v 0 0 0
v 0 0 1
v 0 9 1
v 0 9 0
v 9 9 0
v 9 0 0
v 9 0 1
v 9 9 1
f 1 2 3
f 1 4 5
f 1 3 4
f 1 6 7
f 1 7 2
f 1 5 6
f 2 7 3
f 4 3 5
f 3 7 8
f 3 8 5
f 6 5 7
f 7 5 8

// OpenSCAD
/* Warning, this is a very basic generator with a lot of approximation 
input data : [VQFN, TDB, 9x9x1mm, 64, , A, C04-21434A]
generated by com.zoubworld.electronics.cad.model3d.Basic
Date : Sun Feb 15 10:50:49 CET 2026
*/

//body
color("black")
translate([0,0,0])
cube([9.0,9.0,1.0], center=false);
